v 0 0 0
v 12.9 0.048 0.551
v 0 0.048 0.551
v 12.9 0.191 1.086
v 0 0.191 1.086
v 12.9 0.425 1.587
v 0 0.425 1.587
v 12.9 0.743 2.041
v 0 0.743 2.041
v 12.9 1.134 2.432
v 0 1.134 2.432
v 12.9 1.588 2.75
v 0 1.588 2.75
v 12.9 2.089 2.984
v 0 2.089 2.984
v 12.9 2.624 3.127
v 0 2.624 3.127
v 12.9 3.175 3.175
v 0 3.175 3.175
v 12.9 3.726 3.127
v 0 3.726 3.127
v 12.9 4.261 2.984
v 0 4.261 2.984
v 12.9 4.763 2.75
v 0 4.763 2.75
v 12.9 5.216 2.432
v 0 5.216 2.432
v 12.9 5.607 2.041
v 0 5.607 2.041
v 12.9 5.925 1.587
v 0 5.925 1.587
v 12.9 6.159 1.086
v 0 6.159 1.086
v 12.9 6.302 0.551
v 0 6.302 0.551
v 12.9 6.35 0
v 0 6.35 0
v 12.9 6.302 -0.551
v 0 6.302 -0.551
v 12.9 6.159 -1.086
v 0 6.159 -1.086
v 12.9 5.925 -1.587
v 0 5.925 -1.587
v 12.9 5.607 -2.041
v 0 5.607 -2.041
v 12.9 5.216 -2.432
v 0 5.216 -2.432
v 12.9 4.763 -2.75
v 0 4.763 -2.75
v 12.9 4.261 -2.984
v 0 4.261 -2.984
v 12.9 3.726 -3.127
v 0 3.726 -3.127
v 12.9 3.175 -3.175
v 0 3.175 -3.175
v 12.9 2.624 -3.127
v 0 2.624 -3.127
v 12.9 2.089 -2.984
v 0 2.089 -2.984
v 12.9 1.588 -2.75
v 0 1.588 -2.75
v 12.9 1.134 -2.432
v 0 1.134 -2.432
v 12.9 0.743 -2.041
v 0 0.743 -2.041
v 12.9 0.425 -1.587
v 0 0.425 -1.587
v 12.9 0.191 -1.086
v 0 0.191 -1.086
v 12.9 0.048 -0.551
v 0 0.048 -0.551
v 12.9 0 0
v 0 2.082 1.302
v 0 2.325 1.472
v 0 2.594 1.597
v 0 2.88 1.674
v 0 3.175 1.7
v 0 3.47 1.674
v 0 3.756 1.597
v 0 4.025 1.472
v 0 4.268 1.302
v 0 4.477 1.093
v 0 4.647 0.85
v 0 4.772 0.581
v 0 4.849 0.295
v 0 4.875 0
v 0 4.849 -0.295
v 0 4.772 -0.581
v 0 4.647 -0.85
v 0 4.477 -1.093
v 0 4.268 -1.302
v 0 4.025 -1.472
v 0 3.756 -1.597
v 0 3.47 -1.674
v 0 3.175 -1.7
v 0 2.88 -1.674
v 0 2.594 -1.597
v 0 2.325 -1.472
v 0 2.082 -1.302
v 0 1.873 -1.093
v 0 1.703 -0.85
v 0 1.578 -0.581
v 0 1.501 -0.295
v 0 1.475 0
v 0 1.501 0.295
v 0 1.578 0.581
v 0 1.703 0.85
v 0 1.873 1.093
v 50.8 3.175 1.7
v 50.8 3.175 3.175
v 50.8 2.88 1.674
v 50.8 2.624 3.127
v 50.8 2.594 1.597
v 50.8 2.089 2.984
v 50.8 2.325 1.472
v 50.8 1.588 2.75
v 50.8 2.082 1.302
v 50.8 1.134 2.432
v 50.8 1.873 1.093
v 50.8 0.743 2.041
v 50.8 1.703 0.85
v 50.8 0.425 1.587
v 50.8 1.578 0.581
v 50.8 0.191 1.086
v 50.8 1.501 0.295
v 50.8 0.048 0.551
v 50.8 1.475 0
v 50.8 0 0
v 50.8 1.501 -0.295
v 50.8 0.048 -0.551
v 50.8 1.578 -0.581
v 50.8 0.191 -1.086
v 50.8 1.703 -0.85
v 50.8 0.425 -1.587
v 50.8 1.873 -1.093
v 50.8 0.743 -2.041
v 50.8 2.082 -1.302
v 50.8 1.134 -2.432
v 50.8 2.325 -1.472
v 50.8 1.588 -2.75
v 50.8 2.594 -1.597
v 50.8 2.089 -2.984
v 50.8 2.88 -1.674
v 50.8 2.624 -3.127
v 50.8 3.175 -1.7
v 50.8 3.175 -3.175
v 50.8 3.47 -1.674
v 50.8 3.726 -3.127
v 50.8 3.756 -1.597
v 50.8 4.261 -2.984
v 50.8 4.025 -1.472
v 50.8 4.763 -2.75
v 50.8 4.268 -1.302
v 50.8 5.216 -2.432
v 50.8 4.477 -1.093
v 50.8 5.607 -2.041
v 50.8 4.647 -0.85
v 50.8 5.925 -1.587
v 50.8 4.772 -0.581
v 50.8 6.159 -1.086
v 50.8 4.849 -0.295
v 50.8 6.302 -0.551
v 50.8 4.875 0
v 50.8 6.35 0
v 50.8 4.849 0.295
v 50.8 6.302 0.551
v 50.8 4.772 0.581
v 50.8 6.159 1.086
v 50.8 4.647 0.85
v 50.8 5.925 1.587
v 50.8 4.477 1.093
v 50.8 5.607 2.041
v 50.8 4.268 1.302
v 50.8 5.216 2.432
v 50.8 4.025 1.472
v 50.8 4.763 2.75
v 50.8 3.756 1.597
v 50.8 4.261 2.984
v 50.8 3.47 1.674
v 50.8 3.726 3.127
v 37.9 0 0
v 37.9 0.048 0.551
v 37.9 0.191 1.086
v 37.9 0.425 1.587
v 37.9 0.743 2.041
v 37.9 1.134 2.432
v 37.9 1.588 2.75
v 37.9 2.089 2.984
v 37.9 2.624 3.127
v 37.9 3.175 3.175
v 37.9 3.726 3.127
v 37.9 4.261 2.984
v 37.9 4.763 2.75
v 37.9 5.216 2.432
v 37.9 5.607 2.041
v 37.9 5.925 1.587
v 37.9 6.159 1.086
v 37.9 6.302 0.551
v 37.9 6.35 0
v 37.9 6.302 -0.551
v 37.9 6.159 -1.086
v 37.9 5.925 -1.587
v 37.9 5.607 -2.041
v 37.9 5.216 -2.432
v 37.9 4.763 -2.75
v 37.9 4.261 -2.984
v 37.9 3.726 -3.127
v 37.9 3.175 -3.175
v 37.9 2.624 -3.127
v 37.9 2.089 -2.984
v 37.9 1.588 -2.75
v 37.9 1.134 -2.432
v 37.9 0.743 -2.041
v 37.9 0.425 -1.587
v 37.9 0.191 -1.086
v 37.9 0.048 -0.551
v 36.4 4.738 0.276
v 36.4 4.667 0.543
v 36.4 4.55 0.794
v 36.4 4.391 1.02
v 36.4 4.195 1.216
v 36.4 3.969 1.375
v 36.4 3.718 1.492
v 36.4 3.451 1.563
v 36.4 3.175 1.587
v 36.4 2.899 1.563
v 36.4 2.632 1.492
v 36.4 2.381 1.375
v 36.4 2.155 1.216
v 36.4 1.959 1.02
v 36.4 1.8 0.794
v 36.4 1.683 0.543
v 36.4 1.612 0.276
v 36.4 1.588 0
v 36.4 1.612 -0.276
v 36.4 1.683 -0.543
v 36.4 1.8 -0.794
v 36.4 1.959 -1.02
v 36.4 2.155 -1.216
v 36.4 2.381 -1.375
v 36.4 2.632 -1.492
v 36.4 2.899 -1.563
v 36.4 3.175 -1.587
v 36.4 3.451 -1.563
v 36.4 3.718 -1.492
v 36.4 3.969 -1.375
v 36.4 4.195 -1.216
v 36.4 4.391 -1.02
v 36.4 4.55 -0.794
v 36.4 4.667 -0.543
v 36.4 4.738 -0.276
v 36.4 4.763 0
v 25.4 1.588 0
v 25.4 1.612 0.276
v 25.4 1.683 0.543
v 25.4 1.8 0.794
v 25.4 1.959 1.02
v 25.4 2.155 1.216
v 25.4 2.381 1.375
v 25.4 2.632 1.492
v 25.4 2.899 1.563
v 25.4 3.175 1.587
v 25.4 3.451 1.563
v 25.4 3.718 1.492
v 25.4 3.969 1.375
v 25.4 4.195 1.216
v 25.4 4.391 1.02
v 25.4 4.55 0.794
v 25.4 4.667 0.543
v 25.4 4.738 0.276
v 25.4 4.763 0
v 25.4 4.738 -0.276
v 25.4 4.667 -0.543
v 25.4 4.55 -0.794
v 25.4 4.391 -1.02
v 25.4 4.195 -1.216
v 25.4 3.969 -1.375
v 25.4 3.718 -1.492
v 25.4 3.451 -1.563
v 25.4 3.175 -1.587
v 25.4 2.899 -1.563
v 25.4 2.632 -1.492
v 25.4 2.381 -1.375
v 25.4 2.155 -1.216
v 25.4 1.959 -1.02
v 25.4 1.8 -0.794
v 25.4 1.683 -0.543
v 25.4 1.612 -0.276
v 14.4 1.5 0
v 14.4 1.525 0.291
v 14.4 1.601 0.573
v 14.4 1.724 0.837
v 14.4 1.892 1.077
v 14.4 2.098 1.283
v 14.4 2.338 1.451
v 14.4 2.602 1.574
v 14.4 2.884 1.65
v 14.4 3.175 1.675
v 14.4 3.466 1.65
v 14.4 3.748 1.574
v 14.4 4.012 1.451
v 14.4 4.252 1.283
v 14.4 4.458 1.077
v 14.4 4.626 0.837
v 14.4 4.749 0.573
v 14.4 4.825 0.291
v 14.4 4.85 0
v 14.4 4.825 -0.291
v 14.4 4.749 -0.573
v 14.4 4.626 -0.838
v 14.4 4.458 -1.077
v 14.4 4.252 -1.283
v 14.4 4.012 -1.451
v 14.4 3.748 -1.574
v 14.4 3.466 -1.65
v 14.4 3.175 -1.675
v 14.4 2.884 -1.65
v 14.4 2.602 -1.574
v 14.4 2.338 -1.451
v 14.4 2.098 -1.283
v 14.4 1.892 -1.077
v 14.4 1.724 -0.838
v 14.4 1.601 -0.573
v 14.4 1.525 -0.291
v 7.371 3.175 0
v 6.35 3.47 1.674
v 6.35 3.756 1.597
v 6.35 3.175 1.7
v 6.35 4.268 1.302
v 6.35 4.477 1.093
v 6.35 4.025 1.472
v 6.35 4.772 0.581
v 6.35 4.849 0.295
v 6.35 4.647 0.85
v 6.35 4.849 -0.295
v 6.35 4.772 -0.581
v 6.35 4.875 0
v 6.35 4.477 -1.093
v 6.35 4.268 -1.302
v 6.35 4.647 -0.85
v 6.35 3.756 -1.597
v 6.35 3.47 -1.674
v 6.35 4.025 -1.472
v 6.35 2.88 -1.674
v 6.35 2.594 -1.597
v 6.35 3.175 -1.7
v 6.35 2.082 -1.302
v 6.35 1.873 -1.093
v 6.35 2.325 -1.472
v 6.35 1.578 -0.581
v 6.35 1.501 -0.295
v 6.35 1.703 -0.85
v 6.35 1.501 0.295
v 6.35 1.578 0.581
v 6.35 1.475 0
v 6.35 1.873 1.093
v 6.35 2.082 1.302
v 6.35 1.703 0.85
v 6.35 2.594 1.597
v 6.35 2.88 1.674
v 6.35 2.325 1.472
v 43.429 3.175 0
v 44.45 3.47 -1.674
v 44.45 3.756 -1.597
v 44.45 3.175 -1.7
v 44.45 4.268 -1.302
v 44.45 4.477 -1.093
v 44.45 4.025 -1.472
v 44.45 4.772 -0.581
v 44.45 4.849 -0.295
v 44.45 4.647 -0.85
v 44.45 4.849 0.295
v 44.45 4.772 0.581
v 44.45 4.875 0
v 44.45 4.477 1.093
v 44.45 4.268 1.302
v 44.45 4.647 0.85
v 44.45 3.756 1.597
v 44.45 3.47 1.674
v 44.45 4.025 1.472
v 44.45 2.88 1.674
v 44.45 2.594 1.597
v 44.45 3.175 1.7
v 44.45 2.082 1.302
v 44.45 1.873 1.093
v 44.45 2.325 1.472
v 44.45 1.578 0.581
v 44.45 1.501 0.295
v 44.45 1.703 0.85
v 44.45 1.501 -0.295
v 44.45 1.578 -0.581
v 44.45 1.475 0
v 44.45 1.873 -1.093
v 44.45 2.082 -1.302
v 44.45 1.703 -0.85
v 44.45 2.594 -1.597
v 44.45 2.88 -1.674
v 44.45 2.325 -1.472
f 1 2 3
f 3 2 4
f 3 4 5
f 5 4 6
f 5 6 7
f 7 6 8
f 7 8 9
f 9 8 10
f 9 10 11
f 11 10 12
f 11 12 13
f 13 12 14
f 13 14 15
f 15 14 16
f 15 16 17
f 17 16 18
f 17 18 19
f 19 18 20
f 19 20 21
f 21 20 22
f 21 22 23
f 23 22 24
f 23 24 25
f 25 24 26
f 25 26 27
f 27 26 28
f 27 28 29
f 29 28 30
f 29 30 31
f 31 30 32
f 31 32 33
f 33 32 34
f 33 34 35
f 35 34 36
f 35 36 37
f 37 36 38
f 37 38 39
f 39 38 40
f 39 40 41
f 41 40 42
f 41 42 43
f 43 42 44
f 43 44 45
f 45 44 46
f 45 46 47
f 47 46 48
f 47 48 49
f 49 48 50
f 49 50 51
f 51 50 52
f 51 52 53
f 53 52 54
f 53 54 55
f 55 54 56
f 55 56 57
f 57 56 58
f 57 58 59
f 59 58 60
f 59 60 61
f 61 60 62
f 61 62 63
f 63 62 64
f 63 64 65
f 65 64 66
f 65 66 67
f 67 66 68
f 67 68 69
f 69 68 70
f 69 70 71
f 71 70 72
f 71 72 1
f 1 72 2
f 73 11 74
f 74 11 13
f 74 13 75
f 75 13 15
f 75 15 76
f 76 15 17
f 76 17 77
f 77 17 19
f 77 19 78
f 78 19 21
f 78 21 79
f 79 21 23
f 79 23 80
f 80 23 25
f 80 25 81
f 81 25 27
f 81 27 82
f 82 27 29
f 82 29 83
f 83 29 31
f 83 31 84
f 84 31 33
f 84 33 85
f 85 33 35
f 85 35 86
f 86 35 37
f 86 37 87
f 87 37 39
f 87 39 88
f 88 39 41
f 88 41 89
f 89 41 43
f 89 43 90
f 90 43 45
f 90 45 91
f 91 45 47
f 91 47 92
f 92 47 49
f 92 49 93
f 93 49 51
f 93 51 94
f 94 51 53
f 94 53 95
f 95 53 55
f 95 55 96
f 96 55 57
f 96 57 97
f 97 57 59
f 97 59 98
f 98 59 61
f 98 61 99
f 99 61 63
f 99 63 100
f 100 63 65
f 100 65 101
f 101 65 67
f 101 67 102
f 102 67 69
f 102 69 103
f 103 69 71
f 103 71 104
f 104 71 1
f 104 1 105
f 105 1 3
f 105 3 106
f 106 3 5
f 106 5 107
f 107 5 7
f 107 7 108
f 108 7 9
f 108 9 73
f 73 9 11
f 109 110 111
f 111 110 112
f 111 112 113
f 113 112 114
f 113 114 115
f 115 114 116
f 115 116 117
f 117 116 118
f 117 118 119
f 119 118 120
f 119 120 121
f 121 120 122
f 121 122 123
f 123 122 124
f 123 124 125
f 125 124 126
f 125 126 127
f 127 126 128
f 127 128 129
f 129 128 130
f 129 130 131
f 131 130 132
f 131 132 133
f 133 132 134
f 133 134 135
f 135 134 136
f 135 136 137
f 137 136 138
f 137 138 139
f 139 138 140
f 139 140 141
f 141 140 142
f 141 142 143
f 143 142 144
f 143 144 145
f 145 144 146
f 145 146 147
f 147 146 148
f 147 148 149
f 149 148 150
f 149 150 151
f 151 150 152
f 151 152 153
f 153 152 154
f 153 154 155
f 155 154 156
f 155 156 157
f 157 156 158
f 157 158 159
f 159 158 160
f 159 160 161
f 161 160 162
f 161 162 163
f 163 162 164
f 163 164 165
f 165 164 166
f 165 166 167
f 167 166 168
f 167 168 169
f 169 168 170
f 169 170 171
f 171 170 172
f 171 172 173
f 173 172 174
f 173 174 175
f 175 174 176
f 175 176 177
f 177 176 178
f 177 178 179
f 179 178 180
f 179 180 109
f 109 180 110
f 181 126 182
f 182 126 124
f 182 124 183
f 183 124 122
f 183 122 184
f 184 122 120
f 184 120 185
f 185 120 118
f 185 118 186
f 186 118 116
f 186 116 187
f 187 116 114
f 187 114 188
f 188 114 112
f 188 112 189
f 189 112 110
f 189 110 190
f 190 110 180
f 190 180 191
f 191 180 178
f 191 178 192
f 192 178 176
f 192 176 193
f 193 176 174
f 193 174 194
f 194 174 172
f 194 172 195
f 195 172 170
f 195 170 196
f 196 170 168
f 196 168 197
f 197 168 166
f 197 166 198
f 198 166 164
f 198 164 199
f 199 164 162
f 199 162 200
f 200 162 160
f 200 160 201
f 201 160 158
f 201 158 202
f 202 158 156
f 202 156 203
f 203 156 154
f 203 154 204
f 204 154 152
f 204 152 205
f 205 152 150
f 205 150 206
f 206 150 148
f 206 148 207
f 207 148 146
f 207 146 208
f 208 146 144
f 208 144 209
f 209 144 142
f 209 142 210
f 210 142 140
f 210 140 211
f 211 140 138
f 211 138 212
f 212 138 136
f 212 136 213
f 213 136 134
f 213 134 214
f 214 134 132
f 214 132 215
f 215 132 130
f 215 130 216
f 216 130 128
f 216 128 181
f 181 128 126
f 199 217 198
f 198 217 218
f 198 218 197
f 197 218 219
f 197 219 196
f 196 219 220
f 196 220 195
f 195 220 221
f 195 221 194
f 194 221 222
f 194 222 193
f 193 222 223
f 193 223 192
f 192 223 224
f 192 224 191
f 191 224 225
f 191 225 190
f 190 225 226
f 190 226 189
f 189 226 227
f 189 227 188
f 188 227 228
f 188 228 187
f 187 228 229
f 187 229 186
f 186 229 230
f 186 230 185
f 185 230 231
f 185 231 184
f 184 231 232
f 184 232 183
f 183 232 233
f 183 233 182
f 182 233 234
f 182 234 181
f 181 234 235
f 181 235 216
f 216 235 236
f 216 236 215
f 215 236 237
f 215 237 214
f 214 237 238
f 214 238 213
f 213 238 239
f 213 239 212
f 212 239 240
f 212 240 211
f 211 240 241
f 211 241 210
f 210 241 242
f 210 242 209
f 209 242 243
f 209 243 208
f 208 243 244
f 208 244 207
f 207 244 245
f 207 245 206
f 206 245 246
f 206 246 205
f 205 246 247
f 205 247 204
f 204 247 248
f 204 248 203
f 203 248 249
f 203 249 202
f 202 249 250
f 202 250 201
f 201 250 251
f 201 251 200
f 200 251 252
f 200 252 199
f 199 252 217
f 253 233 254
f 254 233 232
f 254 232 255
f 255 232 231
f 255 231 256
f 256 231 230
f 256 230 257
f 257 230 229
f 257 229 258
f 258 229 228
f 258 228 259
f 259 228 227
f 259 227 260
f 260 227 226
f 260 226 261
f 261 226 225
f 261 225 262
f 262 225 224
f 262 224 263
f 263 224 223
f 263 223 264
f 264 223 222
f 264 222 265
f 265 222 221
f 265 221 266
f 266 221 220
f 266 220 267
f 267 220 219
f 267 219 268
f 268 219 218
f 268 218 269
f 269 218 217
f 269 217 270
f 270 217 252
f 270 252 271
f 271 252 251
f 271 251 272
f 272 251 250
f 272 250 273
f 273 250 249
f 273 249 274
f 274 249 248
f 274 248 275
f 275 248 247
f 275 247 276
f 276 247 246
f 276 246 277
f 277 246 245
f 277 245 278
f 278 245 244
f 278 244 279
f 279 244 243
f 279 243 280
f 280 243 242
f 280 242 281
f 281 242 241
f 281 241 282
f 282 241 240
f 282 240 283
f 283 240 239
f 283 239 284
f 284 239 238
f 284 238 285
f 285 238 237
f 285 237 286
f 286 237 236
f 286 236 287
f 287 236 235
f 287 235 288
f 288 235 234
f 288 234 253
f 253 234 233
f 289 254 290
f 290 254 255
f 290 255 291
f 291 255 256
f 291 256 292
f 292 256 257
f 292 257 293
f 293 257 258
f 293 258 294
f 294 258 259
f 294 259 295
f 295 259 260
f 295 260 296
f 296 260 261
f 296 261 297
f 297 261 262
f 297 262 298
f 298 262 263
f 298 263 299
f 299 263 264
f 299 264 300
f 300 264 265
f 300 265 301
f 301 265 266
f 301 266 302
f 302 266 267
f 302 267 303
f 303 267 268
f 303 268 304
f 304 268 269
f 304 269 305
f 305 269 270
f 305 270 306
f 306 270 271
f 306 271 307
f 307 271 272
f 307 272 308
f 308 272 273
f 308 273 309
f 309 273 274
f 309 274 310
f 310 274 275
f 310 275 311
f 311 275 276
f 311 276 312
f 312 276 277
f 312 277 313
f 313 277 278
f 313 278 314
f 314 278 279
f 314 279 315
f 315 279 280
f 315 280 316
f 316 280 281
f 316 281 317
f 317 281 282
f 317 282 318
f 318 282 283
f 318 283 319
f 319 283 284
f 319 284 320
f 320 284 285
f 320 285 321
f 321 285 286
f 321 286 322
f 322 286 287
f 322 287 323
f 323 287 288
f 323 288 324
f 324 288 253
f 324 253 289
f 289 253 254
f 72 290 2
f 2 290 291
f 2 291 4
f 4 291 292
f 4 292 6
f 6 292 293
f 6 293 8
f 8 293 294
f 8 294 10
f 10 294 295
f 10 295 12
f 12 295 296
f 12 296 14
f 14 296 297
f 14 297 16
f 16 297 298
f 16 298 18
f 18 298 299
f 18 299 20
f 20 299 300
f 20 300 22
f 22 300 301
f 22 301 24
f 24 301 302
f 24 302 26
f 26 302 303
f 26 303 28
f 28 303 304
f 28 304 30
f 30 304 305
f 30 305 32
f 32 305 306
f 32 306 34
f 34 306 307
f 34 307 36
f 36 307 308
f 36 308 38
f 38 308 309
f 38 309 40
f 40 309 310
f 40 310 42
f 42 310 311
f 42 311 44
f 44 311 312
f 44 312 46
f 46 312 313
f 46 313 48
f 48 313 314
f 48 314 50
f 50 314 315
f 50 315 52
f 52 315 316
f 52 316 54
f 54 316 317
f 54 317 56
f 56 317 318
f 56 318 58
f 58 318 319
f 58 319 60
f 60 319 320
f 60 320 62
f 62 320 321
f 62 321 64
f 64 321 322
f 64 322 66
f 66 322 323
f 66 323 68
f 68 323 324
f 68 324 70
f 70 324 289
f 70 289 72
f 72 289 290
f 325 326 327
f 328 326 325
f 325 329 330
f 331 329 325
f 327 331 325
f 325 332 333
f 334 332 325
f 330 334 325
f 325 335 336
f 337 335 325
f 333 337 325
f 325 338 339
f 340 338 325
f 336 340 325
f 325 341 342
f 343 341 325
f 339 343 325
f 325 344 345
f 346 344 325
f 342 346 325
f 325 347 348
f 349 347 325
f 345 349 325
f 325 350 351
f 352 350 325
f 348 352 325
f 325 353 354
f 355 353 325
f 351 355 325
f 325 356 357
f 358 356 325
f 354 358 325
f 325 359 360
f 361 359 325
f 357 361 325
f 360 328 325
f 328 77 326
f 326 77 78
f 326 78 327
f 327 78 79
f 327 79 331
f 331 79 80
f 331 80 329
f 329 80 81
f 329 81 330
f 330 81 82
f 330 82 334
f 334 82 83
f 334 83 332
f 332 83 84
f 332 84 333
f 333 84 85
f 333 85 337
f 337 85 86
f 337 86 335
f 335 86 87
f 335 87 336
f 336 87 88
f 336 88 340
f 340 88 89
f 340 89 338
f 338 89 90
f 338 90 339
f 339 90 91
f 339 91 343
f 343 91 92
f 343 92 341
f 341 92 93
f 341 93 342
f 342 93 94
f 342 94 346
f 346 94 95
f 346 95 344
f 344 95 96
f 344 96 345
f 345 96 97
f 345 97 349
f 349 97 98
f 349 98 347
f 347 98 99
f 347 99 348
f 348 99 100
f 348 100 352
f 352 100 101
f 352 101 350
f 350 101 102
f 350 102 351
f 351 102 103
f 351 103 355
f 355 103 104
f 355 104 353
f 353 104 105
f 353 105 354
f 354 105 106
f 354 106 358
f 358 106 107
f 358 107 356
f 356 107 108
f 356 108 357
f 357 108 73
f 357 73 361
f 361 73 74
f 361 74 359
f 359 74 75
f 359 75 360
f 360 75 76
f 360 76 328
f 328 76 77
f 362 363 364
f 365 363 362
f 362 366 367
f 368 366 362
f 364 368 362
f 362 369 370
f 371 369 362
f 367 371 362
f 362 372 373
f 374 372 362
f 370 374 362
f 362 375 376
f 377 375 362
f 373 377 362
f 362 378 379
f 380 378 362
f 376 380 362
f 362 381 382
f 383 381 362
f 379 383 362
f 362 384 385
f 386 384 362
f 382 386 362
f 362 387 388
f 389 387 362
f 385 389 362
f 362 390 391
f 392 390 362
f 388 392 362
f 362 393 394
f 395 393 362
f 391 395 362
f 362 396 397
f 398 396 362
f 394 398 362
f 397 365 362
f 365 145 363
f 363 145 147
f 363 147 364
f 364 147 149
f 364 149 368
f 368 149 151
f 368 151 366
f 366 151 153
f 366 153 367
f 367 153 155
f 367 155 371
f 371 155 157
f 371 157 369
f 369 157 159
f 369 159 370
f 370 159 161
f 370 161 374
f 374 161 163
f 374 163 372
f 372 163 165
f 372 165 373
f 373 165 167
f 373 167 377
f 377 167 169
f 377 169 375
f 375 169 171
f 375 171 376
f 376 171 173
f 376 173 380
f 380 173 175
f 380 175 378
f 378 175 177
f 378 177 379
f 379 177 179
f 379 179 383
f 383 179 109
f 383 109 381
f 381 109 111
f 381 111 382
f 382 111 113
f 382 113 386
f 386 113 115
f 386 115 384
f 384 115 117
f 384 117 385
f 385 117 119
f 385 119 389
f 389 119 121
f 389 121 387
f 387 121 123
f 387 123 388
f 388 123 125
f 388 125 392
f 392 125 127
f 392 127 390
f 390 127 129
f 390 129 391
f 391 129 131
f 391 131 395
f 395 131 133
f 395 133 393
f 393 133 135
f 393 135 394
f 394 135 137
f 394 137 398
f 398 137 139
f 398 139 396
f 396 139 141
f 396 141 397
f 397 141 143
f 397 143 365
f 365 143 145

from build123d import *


with BuildPart() as part:
    # Sketch1 → Revolve1 (revolve)
    with BuildSketch(Plane.XY):
        Polygon((25.4, 1.5875), (14.400348017, 1.499999985), (12.900348032, 0), (0, 0), (0, 3.175), (50.8, 3.175), (50.8, 0), (37.899651968, 0), (36.4, 1.5875), align=None)
    revolve(axis=Axis((0, 3.175, 0), (1, 0, 0)))

    # Sketch6 → M3 Clearance Hole1 (revolve, cut)
    with BuildSketch(Plane.ZX.offset(3.175)):
        Polygon((0, 0), (0, 7.371463052), (1.7, 6.35), (1.7, 0), align=None)
    m3_clearance_hole1 = revolve(axis=Axis((-6.35, 3.175, 0), (1, 0, 0)), mode=Mode.SUBTRACT)

    # Mirror1: M3 Clearance Hole1 across plane
    add(m3_clearance_hole1.mirror(Plane.ZY.offset(-25.4)), mode=Mode.SUBTRACT)


solid = part.part
